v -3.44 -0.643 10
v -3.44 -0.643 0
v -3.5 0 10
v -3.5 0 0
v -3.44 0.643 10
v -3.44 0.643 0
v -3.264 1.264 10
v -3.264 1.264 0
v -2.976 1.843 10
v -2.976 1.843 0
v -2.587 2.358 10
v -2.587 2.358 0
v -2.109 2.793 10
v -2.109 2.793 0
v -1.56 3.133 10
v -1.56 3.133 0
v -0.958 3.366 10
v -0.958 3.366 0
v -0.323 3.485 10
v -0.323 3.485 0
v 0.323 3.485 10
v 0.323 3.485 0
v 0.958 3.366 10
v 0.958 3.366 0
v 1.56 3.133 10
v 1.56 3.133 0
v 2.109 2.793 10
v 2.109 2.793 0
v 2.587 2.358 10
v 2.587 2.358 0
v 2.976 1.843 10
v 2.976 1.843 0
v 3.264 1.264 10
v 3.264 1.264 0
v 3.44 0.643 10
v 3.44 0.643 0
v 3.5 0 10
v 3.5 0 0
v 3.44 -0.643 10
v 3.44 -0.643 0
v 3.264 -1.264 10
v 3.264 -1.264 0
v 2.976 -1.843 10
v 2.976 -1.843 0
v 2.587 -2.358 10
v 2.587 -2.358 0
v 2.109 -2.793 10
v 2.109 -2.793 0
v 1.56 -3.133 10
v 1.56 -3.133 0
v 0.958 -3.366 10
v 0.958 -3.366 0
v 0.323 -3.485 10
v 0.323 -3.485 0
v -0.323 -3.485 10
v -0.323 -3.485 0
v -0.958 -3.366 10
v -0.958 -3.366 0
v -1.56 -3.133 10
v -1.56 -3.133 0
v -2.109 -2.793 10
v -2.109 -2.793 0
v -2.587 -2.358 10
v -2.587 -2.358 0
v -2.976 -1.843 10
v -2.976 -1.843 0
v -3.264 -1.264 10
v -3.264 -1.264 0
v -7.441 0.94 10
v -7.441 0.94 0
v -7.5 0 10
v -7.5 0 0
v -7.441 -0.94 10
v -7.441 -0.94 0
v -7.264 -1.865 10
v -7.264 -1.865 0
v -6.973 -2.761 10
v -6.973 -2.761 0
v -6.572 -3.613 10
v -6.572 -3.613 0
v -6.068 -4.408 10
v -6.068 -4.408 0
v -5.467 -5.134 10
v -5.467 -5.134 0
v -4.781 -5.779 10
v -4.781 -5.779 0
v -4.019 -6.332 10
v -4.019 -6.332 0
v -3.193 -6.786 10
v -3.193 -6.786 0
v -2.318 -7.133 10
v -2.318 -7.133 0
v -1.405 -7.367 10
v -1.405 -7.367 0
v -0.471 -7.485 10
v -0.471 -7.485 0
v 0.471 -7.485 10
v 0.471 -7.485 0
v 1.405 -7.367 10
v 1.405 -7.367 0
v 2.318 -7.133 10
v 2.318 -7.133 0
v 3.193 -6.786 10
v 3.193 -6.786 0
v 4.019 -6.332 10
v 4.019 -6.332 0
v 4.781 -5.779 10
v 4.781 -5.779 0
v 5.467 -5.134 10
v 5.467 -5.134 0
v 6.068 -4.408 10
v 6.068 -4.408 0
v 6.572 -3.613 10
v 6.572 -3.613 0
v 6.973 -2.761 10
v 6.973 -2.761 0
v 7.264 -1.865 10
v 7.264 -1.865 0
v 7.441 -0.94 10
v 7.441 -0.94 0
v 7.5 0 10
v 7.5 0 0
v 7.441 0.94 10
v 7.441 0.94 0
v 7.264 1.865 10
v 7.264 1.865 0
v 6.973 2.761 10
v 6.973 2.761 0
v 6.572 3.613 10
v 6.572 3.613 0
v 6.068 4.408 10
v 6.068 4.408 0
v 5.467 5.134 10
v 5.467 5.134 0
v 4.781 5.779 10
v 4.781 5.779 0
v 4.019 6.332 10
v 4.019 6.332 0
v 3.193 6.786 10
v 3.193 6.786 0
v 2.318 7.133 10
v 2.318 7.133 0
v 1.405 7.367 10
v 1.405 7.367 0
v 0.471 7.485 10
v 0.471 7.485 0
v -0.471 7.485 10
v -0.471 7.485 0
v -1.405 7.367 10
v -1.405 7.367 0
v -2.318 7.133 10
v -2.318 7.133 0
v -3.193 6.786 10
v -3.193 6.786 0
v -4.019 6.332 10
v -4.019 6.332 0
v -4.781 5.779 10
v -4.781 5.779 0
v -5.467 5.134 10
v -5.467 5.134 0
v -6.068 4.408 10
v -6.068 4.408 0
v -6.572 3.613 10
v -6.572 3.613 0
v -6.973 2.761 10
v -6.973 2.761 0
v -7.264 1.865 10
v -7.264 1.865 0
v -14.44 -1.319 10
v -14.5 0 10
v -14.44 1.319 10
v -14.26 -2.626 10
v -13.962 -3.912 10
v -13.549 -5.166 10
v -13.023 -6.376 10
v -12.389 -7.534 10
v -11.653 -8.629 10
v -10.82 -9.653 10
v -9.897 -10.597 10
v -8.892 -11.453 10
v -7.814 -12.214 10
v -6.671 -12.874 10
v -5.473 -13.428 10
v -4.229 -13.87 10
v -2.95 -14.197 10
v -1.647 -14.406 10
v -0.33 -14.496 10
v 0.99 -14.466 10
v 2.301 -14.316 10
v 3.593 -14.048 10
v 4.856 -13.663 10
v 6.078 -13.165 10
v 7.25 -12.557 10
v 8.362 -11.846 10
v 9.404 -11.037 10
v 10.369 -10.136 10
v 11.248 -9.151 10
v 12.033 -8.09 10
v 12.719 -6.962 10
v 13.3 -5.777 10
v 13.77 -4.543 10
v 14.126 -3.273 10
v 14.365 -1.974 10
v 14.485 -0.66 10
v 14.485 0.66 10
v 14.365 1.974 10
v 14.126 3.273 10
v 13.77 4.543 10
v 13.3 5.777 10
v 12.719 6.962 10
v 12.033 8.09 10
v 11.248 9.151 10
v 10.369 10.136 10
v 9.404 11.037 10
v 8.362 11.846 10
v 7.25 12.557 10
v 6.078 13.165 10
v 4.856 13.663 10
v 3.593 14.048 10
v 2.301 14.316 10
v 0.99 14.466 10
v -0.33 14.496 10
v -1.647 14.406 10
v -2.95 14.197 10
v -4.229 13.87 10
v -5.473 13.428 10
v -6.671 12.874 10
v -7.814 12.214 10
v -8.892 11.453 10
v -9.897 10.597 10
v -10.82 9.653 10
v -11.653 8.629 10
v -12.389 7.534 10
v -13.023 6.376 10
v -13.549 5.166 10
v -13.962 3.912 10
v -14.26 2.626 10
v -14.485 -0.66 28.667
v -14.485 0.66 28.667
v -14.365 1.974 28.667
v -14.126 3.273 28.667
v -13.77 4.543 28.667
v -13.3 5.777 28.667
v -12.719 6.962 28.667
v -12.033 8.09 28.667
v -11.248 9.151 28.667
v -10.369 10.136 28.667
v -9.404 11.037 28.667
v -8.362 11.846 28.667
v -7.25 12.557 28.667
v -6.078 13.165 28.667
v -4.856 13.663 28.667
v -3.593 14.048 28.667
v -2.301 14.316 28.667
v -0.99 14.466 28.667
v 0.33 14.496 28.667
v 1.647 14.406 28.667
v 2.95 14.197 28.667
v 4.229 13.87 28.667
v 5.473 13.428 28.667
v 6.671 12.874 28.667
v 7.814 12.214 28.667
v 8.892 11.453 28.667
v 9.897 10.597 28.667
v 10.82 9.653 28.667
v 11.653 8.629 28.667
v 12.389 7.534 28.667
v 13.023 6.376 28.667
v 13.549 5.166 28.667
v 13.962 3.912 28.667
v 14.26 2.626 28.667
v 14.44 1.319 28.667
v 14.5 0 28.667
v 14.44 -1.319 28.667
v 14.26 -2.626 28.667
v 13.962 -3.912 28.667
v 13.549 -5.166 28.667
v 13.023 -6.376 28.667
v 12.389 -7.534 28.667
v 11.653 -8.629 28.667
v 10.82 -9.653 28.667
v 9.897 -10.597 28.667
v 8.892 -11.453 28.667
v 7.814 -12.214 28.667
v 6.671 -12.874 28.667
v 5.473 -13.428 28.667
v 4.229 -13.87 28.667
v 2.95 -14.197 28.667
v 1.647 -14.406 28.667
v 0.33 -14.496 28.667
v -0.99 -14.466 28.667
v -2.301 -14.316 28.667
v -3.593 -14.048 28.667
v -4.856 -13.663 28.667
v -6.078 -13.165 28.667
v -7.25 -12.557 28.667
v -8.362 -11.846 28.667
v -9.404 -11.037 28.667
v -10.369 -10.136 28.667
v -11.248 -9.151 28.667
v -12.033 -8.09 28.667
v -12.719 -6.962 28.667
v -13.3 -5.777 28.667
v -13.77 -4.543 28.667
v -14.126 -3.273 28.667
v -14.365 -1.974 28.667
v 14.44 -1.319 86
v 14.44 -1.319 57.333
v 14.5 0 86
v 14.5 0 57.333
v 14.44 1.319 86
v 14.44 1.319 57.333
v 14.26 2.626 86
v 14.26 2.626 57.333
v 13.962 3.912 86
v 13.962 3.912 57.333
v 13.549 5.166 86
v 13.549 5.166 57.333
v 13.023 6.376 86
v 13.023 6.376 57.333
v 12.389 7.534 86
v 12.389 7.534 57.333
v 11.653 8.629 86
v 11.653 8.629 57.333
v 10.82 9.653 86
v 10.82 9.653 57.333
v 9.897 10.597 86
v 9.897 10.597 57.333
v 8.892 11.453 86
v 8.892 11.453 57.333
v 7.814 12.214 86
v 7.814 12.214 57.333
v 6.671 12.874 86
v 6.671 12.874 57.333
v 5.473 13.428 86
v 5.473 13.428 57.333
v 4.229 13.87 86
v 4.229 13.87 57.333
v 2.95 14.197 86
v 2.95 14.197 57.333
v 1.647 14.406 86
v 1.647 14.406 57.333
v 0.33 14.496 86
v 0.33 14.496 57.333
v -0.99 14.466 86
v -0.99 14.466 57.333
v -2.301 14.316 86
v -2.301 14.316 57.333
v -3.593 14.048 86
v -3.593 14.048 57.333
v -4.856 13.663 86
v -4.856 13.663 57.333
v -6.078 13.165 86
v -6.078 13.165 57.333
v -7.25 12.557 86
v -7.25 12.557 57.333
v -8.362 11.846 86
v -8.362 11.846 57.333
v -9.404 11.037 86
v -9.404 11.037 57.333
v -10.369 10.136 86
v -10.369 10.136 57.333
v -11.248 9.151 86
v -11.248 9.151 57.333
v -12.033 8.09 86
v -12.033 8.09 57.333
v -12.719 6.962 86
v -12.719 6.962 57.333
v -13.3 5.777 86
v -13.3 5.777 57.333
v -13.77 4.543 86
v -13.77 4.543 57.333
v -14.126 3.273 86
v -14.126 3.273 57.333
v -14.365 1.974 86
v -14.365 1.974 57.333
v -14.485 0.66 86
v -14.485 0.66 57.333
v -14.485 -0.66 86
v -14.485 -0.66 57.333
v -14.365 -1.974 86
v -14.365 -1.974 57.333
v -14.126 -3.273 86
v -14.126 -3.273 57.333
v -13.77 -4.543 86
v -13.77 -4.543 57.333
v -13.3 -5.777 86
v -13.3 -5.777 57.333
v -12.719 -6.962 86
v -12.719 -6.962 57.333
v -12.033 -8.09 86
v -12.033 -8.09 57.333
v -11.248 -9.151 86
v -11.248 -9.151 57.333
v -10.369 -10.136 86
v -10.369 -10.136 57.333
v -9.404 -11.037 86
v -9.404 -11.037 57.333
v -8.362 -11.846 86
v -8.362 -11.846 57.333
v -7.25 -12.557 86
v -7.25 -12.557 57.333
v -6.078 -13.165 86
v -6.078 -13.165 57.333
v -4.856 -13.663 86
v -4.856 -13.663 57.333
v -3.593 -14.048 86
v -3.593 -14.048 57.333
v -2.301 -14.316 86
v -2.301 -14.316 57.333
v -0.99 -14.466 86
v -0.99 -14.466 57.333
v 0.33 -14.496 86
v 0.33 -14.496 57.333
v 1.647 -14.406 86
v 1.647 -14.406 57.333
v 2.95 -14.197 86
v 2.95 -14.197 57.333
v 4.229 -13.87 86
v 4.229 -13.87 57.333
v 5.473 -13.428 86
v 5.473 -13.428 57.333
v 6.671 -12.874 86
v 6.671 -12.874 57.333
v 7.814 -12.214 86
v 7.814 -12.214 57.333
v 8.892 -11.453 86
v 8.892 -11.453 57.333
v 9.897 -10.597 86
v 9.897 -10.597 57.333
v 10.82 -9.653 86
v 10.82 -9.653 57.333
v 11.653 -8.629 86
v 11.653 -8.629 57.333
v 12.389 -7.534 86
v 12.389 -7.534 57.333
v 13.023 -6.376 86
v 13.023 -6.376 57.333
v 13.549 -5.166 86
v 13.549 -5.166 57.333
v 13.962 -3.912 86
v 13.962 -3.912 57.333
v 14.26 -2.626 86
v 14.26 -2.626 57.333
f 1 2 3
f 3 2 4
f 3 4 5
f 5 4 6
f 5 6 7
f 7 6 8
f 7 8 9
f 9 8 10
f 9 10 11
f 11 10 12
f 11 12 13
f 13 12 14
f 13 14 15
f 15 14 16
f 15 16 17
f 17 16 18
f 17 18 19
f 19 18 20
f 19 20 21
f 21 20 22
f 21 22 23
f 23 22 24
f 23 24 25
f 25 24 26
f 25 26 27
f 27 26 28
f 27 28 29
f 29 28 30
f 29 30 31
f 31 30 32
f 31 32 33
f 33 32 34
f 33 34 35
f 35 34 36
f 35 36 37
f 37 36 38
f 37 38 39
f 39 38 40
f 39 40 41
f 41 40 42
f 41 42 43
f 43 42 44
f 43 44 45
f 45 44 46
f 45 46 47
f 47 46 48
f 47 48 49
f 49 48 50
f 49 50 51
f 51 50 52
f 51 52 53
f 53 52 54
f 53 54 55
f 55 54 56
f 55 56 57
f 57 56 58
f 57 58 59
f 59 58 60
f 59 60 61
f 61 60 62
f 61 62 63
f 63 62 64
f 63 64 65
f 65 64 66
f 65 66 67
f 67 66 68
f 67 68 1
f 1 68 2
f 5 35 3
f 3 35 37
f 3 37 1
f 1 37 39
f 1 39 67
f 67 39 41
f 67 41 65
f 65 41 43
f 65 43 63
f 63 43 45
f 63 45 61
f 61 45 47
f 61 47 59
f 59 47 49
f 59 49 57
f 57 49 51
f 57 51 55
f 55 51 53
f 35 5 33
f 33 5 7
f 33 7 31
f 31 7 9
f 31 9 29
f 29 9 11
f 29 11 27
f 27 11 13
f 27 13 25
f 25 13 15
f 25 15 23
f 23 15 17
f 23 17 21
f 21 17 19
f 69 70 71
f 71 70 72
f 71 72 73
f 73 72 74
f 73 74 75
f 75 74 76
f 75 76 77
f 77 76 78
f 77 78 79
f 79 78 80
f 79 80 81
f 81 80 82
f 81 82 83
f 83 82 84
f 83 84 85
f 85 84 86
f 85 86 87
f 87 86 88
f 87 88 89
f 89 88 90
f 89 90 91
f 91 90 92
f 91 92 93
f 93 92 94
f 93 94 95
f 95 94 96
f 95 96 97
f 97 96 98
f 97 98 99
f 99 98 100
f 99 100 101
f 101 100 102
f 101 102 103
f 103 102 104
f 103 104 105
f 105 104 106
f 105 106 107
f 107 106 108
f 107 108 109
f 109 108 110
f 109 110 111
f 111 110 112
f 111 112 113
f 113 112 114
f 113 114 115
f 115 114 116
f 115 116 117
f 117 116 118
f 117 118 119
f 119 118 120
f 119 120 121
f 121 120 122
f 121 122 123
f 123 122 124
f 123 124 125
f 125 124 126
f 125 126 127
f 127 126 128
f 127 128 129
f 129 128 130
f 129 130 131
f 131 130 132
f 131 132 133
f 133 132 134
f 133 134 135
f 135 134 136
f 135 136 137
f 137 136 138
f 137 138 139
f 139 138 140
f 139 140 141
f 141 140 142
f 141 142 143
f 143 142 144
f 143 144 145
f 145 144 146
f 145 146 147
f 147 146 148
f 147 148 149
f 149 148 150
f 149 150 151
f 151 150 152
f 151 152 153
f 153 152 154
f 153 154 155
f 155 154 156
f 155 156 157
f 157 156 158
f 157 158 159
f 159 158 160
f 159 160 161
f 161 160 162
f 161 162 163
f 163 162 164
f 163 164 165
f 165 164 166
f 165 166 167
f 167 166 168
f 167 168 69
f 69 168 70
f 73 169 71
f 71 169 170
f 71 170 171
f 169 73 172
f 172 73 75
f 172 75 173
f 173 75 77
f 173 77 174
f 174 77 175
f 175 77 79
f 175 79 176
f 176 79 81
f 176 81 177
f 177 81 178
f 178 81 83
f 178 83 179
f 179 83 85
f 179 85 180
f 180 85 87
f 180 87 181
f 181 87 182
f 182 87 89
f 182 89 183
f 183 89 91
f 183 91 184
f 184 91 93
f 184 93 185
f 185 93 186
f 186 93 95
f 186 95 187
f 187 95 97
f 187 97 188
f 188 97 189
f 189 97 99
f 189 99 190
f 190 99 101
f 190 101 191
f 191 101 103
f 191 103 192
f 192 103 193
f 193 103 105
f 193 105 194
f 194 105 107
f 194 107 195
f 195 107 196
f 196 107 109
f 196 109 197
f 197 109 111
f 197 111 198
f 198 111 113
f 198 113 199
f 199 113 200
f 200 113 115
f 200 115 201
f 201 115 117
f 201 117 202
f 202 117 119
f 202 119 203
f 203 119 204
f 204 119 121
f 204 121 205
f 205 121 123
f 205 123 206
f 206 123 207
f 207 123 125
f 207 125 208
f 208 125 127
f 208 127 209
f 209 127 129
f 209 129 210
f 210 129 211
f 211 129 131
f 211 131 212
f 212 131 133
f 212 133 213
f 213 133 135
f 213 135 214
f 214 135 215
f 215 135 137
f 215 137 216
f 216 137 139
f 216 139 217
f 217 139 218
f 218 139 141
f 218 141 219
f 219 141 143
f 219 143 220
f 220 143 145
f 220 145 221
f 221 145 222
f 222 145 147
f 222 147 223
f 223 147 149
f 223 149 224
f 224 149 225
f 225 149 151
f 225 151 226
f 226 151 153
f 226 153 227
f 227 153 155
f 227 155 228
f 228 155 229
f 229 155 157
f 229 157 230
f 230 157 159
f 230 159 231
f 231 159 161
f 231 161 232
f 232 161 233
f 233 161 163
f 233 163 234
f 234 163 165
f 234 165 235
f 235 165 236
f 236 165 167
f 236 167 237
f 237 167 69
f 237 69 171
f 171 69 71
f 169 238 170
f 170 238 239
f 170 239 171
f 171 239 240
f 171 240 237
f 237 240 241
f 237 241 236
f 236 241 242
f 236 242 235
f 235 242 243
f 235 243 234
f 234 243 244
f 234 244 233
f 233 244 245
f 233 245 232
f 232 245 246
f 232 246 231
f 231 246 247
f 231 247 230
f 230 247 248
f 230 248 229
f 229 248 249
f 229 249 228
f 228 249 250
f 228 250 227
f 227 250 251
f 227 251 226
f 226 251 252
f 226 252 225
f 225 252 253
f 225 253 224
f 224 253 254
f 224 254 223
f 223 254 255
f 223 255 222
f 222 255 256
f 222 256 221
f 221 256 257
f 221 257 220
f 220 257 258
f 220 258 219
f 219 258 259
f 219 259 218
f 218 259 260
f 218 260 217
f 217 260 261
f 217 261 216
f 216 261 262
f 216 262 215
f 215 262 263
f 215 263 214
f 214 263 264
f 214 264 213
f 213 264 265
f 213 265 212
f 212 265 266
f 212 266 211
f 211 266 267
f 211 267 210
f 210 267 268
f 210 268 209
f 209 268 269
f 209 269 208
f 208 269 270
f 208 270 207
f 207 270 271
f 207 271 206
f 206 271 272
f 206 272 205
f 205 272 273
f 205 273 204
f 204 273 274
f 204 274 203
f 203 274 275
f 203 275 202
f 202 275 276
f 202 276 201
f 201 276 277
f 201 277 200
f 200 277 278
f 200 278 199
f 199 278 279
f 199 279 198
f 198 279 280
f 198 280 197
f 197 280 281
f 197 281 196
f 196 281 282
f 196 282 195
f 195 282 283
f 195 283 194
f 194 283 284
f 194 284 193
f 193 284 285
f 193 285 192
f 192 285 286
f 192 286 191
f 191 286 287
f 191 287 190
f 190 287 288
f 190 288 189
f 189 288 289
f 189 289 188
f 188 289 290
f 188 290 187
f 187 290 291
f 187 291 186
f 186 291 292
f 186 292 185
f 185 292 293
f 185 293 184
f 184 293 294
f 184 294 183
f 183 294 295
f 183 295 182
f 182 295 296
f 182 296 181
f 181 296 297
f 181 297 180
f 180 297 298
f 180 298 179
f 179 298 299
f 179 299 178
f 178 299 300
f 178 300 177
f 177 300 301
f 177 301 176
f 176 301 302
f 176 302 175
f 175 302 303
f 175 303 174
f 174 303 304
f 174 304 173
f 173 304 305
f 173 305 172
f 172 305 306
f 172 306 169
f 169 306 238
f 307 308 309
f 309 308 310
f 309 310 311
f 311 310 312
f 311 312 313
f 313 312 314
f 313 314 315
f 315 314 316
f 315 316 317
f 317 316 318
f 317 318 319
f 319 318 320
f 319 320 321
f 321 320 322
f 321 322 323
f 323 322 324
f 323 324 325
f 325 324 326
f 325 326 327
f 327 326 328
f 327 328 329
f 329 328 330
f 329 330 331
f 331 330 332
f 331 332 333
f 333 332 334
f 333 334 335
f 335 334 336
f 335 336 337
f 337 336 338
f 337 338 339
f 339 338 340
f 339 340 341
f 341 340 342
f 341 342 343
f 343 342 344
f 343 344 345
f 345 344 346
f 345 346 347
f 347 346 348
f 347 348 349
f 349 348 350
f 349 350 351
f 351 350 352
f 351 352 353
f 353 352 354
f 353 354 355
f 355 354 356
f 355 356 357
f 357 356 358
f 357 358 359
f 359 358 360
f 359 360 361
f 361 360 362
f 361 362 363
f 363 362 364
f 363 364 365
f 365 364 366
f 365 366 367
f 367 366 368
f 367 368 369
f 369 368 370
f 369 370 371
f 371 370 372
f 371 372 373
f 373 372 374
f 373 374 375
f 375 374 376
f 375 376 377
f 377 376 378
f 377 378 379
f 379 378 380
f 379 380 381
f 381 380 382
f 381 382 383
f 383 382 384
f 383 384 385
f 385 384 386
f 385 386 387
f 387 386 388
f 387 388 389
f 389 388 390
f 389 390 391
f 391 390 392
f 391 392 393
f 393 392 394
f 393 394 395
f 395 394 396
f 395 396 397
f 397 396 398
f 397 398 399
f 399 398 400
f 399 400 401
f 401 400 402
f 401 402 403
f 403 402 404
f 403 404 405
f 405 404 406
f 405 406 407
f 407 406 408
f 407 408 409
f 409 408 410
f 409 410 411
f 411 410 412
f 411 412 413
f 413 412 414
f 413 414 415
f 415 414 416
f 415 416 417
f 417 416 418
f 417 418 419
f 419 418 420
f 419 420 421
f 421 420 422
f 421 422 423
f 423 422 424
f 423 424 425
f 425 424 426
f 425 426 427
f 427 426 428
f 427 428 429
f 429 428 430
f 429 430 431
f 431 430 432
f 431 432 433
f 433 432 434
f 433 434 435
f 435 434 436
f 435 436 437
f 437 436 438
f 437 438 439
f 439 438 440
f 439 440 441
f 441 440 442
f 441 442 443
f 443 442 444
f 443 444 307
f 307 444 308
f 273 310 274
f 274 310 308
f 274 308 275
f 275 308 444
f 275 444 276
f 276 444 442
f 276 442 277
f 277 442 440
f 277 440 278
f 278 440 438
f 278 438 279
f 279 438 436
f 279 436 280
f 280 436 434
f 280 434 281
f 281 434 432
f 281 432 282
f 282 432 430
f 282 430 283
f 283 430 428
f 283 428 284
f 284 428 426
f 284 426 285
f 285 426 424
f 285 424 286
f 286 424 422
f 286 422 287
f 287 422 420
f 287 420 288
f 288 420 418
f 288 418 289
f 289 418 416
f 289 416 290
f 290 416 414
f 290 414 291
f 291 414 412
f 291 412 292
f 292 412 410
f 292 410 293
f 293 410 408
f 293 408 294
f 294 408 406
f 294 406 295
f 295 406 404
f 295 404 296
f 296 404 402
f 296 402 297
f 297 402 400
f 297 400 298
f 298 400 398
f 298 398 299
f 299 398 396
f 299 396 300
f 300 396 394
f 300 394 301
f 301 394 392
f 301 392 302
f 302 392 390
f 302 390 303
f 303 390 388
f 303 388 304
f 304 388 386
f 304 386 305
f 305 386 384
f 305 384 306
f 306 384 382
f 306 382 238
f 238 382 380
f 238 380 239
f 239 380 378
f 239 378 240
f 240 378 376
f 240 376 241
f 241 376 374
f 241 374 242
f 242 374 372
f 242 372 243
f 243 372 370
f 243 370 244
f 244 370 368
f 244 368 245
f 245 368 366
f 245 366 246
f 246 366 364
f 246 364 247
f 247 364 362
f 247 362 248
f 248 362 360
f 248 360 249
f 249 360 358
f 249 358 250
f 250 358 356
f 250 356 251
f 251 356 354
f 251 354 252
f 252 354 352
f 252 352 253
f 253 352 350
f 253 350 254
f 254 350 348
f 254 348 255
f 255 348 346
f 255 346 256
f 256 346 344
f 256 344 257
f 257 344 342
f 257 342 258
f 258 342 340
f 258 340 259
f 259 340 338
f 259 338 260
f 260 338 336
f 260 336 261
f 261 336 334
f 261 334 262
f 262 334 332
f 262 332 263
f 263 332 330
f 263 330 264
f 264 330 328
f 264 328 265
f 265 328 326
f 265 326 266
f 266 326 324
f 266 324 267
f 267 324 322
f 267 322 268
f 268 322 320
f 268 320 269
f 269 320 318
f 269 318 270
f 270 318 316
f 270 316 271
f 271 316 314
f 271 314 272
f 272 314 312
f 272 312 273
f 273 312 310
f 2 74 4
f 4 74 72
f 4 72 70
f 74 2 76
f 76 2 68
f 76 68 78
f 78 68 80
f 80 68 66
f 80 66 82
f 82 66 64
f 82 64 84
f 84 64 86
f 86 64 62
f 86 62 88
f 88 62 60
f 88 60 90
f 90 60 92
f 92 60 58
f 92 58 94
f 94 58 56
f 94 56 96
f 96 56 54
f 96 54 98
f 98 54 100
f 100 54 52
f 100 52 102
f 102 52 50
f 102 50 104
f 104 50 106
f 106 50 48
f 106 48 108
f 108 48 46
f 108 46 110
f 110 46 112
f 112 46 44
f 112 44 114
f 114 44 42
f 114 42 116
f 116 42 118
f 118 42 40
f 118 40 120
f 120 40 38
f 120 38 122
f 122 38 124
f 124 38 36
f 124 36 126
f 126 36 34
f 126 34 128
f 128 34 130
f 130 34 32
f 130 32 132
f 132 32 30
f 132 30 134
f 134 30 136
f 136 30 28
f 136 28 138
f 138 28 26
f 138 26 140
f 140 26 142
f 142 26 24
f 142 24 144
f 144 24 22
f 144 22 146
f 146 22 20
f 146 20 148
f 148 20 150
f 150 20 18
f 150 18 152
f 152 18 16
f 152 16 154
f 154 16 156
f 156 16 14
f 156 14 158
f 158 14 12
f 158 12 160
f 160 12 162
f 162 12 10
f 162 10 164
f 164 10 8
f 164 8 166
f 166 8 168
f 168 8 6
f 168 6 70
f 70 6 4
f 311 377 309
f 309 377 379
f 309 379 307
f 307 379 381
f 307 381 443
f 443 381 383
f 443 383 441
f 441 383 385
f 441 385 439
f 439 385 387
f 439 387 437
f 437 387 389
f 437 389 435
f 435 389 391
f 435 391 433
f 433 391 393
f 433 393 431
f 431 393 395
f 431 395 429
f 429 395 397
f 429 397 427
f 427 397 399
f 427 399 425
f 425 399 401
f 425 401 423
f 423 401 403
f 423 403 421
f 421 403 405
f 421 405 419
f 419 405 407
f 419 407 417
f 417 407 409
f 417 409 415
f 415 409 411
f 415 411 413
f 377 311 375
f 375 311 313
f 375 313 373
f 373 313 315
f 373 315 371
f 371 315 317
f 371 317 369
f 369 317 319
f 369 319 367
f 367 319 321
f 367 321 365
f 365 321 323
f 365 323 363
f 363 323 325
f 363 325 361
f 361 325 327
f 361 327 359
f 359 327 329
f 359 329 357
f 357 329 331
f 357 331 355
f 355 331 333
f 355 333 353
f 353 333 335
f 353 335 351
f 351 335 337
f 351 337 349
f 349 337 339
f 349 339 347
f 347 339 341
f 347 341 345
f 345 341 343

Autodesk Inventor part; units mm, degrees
ref_plane "YZ Plane" through (0, 0, 0) normal (1, 0, 0) x (0, 1, 0)
ref_plane "XZ Plane" through (0, 0, 0) normal (0, 1, 0) x (-1, 0, 0)
ref_plane "XY Plane" through (0, 0, 0) normal (0, 0, 1) x (1, 0, 0)
sketch "Sketch1" plane through (0, 0, 0) normal (0, 0, 1) x (1, 0, 0)
  circle A0 centre (0, 0) radius 14.5
  dimension "d0" = 29
extrude "Extrusion1" add sketch "Sketch1" along normal blind 86
sketch "Sketch2" plane through (0, 0, 0) normal (0, 0, -1) x (-1, 0, 0)
  circle A0 centre (0, 0) radius 14.5
  circle A1 centre (0, 0) radius 7.5
  dimension "d3" = 15
extrude "Extrusion2" cut sketch "Sketch2" against normal blind 10
sketch "Sketch3" plane through (0, 0, 0) normal (0, 0, -1) x (-1, 0, 0)
  circle A0 centre (0, 0) radius 3.5
  dimension "d6" = 7
extrude "Extrusion3" cut sketch "Sketch3" against normal blind 10
properties part number "motor29x86"
